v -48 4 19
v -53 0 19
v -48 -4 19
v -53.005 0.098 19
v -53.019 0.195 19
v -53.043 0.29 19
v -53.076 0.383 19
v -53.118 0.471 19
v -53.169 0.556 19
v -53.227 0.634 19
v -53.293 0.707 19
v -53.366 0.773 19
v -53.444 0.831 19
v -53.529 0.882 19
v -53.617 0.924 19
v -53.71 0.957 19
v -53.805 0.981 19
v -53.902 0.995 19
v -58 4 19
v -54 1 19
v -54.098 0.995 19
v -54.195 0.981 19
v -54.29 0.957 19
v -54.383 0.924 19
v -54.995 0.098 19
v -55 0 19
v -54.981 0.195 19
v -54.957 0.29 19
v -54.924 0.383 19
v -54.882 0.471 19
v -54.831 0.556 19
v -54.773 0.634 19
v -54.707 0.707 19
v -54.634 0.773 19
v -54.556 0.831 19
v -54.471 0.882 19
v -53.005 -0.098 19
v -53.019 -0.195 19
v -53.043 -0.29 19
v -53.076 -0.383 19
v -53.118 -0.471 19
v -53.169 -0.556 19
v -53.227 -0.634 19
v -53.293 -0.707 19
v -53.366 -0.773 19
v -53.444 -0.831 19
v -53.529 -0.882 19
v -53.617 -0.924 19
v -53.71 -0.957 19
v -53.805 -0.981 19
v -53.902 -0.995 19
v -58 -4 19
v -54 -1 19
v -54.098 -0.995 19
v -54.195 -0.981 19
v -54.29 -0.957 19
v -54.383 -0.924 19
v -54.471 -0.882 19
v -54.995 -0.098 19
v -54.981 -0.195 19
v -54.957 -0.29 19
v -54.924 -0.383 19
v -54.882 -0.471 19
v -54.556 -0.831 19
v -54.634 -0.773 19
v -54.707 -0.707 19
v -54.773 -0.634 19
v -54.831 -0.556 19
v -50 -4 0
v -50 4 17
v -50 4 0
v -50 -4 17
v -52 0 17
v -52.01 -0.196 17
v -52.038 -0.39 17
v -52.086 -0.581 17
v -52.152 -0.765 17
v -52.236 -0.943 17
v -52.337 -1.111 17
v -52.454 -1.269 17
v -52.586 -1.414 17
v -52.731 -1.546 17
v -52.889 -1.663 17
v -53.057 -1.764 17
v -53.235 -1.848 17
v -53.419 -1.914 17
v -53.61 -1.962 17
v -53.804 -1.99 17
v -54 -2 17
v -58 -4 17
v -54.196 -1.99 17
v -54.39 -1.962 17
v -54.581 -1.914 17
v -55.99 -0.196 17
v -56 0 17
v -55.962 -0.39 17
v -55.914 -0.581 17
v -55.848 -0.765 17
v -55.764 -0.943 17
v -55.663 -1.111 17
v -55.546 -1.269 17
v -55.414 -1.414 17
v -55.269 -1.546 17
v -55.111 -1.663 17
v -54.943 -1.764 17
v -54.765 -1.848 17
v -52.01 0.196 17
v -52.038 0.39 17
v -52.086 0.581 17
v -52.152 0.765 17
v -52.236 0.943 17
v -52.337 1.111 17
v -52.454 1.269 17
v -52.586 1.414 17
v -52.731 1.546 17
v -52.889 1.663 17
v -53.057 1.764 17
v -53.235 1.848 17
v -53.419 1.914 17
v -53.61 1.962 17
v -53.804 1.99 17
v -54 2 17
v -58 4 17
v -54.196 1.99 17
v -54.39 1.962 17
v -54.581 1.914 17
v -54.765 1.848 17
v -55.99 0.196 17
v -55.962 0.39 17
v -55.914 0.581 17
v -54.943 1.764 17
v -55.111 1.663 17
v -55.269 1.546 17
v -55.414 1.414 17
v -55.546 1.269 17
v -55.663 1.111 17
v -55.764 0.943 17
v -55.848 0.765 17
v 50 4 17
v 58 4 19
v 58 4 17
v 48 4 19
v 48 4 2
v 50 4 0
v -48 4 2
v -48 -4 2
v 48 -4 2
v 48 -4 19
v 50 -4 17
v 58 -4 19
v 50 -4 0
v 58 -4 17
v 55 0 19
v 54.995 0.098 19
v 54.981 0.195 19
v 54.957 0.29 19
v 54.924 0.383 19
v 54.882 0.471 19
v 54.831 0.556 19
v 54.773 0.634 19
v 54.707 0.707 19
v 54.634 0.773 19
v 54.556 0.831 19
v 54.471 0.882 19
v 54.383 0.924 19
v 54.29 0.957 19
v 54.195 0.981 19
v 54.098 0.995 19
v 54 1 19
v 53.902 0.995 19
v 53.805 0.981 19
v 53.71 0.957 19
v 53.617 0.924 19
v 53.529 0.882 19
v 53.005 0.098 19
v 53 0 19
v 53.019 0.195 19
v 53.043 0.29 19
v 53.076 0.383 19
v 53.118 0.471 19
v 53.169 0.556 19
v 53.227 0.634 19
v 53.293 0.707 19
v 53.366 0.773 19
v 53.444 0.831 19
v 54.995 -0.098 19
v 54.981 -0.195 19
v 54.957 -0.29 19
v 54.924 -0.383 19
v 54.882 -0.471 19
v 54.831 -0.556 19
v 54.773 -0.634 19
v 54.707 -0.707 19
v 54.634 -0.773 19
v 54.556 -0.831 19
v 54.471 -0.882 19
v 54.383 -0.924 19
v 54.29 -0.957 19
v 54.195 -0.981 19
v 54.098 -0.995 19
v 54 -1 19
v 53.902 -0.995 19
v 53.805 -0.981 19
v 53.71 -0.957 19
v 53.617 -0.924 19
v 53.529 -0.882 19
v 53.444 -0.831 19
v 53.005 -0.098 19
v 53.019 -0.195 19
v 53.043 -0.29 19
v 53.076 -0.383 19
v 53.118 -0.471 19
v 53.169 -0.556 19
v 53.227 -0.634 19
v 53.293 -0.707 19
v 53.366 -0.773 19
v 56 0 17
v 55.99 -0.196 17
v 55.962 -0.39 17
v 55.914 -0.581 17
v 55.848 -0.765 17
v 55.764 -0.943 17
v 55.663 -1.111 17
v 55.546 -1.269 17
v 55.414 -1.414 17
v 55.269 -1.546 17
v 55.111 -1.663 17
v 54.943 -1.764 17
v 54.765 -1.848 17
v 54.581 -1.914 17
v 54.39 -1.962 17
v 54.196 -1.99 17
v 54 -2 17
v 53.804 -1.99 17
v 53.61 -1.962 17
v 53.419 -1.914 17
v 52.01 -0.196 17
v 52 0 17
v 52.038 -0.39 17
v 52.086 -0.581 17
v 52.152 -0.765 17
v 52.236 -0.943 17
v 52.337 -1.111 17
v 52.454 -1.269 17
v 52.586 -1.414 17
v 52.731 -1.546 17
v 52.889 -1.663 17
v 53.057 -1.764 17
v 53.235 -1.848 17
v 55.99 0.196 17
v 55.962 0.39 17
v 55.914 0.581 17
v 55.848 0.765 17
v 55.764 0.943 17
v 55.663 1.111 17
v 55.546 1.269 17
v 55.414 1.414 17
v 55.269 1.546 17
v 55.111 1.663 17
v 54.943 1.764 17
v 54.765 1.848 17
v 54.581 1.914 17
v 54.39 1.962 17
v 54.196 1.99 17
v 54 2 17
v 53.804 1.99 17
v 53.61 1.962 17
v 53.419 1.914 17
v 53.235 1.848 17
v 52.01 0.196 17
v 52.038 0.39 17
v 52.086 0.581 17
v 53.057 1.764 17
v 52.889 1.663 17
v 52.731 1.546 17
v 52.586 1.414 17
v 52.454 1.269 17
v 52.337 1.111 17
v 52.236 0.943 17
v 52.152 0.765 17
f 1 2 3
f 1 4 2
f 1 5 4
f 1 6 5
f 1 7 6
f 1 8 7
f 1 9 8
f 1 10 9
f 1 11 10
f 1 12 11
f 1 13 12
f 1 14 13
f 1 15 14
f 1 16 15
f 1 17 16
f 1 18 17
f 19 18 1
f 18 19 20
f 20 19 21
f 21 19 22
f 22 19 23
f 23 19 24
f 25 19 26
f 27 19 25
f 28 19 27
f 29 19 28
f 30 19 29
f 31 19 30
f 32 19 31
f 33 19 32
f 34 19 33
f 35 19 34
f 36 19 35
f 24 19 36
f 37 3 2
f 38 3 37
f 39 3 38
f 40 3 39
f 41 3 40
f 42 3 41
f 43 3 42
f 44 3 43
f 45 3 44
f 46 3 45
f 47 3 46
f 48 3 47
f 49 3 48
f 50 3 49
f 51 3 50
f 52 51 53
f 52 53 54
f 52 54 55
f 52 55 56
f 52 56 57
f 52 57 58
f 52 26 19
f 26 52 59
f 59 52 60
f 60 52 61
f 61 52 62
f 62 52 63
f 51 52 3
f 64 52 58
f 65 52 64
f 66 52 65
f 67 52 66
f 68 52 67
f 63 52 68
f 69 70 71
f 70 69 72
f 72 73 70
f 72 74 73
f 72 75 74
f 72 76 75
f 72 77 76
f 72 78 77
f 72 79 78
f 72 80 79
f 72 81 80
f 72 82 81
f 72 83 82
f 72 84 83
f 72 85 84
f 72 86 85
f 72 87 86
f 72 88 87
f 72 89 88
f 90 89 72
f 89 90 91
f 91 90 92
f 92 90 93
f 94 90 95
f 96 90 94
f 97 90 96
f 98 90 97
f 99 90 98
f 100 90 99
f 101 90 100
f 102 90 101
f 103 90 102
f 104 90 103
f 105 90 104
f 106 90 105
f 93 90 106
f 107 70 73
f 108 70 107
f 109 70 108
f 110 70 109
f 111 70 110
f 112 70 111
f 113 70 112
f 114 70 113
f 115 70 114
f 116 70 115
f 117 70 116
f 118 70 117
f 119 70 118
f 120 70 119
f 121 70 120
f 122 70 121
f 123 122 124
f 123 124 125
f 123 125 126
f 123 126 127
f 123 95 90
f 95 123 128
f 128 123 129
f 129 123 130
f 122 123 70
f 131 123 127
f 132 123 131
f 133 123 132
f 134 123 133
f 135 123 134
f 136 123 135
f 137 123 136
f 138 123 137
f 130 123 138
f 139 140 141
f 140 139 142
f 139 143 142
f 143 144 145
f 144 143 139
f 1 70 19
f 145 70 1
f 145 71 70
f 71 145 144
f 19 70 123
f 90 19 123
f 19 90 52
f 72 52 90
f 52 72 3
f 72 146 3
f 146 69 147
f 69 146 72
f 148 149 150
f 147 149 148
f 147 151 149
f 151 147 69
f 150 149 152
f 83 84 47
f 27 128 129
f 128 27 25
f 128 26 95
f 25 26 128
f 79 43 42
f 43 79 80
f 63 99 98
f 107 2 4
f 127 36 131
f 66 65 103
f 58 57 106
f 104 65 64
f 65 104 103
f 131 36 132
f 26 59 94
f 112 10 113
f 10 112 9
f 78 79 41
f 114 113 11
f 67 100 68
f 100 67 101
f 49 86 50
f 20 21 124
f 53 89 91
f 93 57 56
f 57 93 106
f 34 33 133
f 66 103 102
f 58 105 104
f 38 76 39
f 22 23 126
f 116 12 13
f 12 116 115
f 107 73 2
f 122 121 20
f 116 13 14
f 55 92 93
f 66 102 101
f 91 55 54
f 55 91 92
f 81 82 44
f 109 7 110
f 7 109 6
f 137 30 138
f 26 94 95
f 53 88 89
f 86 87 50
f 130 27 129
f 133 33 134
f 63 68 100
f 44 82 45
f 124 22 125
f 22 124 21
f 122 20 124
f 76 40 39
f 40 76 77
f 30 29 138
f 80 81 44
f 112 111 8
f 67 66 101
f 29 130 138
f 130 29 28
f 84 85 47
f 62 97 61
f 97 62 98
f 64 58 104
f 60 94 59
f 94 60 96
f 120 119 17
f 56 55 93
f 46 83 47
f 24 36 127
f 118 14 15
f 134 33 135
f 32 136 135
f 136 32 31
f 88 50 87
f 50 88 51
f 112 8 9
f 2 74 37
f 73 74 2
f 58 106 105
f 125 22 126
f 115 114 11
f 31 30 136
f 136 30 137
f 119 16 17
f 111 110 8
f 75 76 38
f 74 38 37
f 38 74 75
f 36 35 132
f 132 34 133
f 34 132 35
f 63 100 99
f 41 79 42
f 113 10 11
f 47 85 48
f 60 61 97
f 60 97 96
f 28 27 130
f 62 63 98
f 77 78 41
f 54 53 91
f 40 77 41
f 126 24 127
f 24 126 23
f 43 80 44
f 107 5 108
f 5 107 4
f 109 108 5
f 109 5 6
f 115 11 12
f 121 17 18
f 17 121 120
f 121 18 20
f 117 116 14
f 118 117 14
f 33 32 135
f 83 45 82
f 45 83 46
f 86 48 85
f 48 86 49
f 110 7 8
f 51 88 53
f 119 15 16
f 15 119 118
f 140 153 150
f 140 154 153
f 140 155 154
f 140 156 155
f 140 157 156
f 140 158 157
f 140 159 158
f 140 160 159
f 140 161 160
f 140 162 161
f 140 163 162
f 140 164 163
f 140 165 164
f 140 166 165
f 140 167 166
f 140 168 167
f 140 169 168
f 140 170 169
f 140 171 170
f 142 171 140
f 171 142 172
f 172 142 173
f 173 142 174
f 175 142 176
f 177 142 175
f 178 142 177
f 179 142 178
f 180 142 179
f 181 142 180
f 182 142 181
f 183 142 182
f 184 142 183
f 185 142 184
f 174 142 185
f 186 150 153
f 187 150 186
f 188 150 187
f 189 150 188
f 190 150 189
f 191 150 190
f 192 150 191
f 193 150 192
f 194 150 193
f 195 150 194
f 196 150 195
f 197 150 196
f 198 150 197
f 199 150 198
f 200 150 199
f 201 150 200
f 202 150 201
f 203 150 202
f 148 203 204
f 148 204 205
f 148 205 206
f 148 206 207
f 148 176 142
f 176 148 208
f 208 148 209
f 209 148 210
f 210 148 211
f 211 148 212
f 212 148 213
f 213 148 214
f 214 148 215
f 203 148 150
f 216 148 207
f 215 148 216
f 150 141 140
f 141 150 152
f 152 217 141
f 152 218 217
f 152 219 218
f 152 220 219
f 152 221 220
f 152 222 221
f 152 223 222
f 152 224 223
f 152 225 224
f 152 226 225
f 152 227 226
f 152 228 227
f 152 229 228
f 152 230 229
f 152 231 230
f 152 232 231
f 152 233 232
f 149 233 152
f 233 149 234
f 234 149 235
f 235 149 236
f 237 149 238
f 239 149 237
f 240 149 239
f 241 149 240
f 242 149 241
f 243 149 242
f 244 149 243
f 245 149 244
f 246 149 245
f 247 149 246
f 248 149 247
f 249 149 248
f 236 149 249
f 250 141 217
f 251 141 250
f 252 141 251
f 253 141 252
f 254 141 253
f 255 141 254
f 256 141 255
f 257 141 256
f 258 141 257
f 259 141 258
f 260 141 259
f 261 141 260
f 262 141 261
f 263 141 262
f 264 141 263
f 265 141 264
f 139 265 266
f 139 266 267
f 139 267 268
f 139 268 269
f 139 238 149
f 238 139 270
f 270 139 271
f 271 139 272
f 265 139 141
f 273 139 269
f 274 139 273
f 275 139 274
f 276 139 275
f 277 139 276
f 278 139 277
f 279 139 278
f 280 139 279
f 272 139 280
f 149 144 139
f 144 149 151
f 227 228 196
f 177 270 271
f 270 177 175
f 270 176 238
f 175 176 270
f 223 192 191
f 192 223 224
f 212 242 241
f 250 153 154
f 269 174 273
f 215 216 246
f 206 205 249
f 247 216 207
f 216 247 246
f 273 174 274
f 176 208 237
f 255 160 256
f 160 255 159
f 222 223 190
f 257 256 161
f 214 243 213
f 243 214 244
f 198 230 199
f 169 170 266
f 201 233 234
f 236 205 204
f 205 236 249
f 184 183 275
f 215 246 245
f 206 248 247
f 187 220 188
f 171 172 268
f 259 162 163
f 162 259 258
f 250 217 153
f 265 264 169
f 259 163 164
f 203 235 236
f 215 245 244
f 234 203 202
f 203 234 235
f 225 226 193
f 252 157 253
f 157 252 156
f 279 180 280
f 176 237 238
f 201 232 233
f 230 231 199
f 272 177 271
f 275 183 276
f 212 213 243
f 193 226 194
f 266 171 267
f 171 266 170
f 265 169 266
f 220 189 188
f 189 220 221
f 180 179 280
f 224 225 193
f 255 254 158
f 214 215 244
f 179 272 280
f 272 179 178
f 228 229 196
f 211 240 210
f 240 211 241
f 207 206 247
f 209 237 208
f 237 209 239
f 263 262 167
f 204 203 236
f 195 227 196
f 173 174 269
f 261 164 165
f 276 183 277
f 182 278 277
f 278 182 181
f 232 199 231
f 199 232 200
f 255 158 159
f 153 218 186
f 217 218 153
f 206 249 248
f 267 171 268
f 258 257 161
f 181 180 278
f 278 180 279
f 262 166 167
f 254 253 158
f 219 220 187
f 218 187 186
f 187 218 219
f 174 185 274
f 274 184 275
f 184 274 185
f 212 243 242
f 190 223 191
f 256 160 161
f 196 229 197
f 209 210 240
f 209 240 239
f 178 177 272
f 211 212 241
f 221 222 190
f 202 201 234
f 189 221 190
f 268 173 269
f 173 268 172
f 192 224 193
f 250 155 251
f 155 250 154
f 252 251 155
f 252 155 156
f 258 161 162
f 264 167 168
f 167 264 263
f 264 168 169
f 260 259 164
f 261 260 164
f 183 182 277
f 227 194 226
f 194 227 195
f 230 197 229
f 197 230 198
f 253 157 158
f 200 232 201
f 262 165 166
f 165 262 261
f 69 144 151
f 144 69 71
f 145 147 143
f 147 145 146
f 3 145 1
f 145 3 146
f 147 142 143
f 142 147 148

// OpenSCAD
$fn = 64;

//box = [160.00 , 52.00];
//bh = 6.00;
//side = 6.00;
//hole_r = 2.00;


box = [96.00, 17.00];

bh = 2.00;
side = 2.00;
hole_r = 1.00;

wh = 8.00;

bottom = [box[0] + side * 2, wh];

/*
support = 6.00;
mount = 16.00;

difference() {
    square([box[0] + support * 2, box[1] + support], center = true);
    translate([0, support / 2, 0])
        square(box, center = true);
    //translate([-box[0] / 2 - mount / 2 - support, -support / 2, 0])
    //    square([mount, box[1]], center = true);
    //translate([box[0] / 2 + mount / 2 + support, -support / 2, 0])
    //    square([mount, box[1]], center = true);
}

*/

module bottom_support(h, area) {
    linear_extrude(h)
        square(area, center = true);
}

module square_with_hole(h, area, r) {
    translate([0, 0, h])
        rotate([0, 180, 0])
            difference() {
                linear_extrude(h)
                    square(area, center = true);
                linear_extrude(h, scale = 2)
                    circle(r);
            }
}

union() {
    bottom_support(bh, bottom);

    translate([-bottom[0] / 2 + side / 2, 0, bh])
        linear_extrude(box[1])
            square([side, bottom[1]], center = true);

    translate([bottom[0] / 2 - side / 2, 0, bh])
        linear_extrude(box[1])
            square([side, bottom[1]], center = true);

    translate([-bottom[0] / 2 - wh / 2, 0, box[1]])
        square_with_hole(bh, [wh, bottom[1]], hole_r);

    translate([bottom[0] / 2 + wh / 2, 0, box[1]])
        square_with_hole(bh, [wh, bottom[1]], hole_r);
}
